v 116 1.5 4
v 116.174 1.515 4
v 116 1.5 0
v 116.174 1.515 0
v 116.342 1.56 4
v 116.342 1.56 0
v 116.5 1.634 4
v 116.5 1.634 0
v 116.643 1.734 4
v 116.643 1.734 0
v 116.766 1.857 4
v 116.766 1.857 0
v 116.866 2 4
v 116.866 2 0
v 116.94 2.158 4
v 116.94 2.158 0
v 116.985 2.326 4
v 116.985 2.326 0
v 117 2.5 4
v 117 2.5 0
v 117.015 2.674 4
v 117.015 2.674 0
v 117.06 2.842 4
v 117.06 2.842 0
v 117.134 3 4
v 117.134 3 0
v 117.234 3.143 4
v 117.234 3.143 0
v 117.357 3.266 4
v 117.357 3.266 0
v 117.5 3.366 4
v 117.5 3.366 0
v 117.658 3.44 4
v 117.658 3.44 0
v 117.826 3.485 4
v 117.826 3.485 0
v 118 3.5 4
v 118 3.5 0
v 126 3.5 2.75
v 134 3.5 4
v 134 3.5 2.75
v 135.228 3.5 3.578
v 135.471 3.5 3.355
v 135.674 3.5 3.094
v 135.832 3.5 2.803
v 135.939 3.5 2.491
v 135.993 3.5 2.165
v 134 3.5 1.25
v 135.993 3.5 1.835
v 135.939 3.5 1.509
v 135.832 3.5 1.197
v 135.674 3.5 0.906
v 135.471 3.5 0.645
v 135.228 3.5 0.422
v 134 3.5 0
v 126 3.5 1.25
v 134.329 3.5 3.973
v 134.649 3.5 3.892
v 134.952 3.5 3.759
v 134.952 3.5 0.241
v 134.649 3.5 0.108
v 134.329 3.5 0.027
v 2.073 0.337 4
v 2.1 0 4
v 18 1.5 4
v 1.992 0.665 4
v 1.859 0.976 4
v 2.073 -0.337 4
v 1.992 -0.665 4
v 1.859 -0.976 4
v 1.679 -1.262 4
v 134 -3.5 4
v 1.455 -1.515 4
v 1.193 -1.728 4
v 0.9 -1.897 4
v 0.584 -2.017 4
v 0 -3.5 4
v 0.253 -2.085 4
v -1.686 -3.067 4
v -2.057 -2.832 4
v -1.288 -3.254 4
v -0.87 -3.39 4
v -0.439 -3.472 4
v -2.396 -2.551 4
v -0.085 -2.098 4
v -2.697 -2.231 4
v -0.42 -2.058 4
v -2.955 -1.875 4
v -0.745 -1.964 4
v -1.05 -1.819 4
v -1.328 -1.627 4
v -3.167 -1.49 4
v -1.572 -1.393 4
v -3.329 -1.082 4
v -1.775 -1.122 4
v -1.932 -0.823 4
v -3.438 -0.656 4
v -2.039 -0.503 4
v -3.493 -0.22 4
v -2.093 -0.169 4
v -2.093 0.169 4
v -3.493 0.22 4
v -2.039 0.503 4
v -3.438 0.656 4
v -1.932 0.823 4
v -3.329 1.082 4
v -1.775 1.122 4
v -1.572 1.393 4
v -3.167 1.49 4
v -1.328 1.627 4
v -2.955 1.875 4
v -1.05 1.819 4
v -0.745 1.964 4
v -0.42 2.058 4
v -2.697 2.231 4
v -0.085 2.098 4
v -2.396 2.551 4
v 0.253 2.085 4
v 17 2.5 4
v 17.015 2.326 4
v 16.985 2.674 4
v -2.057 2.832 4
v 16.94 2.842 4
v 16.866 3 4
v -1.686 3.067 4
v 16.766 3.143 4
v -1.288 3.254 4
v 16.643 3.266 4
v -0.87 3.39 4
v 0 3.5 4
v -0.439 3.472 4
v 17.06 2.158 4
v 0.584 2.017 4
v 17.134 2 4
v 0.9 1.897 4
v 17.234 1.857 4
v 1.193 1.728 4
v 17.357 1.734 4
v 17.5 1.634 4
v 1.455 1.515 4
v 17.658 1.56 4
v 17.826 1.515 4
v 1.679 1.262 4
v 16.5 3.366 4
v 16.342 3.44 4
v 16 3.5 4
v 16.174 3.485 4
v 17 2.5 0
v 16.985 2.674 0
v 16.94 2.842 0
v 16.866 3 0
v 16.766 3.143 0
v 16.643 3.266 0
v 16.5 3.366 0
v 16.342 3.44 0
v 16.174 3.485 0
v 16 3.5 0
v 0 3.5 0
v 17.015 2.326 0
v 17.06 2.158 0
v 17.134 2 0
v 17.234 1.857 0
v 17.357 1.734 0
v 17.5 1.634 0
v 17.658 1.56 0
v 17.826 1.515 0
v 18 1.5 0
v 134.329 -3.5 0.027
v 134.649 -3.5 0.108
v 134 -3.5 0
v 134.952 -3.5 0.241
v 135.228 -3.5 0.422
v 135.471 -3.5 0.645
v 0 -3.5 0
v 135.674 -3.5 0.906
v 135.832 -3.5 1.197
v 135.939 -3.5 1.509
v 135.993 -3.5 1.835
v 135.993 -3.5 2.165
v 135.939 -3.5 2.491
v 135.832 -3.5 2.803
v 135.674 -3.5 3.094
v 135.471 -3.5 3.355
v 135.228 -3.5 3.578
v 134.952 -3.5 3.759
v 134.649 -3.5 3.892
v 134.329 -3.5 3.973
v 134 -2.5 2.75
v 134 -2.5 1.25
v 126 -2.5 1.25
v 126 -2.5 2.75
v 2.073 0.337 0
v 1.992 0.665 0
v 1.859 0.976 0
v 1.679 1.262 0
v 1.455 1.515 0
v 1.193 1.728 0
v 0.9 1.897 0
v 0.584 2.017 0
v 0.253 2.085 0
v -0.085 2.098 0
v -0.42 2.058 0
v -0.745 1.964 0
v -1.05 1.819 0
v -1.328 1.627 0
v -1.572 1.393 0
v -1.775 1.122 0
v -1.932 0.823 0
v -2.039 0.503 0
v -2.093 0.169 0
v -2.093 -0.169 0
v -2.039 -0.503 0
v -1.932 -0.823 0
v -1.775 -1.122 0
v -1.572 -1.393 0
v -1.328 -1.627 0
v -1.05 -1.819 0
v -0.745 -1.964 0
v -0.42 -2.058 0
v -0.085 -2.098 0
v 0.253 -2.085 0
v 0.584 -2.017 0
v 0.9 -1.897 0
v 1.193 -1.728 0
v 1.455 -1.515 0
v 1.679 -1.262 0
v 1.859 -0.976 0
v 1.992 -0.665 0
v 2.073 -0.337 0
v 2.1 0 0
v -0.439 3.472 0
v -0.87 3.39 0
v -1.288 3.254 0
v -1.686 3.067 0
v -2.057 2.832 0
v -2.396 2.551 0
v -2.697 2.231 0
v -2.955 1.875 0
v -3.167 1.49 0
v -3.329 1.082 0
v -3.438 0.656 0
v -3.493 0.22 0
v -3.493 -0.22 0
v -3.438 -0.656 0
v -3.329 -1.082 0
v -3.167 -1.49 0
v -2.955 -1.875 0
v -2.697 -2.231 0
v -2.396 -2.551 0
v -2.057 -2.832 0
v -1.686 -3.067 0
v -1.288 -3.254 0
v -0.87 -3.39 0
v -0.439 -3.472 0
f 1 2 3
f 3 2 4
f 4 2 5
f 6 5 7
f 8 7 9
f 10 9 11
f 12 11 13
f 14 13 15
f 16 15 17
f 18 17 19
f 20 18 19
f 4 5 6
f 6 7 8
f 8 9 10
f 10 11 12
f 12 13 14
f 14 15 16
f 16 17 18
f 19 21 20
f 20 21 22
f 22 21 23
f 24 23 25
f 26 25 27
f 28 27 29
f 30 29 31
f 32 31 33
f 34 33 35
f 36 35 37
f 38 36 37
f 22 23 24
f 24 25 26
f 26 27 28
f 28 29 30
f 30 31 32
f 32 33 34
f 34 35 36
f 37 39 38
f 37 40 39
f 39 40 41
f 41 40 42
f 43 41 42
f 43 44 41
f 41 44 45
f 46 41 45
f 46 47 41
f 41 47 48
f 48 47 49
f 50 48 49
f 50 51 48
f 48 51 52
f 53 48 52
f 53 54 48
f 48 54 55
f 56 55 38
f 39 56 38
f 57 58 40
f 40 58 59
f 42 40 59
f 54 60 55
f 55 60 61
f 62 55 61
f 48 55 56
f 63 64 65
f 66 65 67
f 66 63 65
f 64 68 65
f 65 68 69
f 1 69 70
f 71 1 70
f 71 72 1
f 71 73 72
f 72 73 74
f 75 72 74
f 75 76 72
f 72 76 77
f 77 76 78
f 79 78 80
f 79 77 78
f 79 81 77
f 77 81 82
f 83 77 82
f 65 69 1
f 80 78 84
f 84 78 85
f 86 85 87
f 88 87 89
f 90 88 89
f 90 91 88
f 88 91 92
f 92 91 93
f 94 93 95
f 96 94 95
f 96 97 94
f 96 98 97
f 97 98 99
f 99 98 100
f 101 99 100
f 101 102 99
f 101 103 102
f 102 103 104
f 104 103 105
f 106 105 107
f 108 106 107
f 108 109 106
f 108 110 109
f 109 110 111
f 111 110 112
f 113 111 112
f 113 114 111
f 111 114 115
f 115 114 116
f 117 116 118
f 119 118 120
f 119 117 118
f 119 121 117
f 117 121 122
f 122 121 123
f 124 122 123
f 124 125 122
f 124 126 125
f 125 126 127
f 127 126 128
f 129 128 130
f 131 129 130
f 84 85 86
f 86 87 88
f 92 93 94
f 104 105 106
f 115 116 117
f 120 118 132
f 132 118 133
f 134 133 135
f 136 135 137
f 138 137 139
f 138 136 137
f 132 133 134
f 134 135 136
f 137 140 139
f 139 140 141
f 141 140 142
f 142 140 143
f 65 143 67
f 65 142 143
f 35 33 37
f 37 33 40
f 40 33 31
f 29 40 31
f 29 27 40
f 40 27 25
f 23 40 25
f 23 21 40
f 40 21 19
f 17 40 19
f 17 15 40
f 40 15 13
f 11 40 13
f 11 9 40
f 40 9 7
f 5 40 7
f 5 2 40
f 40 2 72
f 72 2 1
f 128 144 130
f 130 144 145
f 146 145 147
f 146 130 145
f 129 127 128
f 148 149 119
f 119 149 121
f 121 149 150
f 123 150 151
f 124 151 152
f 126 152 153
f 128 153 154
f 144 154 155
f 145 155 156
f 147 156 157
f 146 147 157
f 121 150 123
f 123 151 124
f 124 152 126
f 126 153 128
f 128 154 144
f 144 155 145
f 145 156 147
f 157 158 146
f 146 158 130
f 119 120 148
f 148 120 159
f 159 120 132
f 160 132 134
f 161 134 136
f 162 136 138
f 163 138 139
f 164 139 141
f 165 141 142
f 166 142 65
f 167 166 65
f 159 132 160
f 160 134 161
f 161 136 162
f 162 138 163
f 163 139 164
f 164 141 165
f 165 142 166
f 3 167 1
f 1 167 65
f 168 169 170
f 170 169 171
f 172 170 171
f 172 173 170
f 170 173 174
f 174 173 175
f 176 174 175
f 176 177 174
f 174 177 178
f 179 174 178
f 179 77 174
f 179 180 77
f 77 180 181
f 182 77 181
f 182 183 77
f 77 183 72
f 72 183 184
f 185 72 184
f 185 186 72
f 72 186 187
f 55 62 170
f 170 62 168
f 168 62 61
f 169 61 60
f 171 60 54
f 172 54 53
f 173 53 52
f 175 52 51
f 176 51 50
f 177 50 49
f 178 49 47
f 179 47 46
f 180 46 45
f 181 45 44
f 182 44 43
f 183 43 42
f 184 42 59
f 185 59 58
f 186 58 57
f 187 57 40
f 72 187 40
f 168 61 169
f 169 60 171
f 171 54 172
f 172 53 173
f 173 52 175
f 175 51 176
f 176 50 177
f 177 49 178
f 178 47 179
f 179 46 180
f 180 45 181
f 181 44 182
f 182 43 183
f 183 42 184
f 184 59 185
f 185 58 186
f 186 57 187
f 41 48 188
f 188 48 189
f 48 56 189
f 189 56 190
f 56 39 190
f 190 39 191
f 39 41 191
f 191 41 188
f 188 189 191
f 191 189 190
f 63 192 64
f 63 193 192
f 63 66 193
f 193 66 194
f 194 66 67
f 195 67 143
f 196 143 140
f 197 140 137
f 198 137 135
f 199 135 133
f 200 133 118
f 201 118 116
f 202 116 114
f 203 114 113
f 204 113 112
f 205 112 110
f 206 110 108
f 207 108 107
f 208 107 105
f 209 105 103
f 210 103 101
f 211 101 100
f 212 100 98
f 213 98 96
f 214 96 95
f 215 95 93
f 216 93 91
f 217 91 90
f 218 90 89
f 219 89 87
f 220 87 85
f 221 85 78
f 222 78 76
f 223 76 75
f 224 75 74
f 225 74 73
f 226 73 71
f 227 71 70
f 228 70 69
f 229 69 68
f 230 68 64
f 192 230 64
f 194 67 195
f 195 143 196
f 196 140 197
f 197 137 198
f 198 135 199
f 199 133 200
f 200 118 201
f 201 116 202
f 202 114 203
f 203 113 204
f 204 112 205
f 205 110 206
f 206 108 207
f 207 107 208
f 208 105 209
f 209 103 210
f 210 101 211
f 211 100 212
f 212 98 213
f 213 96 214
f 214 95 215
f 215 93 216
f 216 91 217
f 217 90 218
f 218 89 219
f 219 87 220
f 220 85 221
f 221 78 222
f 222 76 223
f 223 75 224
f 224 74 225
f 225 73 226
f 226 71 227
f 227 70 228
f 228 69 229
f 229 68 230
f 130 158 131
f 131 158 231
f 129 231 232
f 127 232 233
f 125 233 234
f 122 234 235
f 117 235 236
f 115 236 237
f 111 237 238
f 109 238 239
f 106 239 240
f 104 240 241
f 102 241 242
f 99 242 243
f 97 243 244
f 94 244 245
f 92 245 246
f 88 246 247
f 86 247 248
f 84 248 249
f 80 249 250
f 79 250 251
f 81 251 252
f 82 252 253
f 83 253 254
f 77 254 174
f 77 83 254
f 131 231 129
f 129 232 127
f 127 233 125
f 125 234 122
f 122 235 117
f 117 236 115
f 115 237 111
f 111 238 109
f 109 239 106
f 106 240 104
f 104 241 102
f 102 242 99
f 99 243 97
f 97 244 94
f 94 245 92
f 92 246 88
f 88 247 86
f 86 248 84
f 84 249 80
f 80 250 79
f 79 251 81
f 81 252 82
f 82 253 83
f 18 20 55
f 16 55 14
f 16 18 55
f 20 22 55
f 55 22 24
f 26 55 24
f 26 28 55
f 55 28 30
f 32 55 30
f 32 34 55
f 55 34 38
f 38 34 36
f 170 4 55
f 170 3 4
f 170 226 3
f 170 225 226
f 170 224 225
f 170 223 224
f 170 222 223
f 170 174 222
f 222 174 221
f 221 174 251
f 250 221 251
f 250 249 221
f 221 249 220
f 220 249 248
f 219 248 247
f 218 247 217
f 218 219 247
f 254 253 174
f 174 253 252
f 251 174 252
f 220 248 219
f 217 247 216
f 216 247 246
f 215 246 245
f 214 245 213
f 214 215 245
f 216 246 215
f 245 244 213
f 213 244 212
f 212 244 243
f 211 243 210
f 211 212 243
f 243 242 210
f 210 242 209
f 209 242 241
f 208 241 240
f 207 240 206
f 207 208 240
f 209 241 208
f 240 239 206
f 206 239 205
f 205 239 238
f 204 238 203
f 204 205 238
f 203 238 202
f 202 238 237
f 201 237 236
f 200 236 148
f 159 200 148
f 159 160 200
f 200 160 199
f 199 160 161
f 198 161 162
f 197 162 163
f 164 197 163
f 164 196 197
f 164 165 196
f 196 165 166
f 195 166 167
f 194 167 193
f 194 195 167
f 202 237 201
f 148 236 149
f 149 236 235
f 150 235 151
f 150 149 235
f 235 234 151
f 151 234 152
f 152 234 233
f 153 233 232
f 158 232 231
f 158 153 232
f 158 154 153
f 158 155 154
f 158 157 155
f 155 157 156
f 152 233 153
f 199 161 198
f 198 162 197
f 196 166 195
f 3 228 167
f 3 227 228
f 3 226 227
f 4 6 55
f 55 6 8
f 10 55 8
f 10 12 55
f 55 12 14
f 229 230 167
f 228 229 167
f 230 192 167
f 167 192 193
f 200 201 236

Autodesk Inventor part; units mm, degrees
ref_plane "YZ Plane" through (0, 0, 0) normal (1, 0, 0) x (0, 1, 0)
ref_plane "XZ Plane" through (0, 0, 0) normal (0, 1, 0) x (-1, 0, 0)
ref_plane "XY Plane" through (0, 0, 0) normal (0, 0, 1) x (1, 0, 0)
sketch "Sketch1" plane through (0, 0, 0) normal (0, 0, 1) x (1, 0, 0)
  circle A0 centre (0, 0) radius 2.1
  arc A1 (0, 3.5) -> (0, -3.5) centre (0, 0) ccw
  line L0 (0, 3.5) -> (136, 3.5)
  line L1 (136, 3.5) -> (136, -3.5)
  line L2 (136, -3.5) -> (0, -3.5)
  dimension "d0" = 4.2
  dimension "d1" = 7
  dimension "d2" = 136
extrude "Extrusion1" add sketch "Sketch1" along normal blind 4
sketch "Sketch2" plane through (0, 3.5, 0) normal (0, 1, 0) x (1, 0, 0)
  line L0 (136, 0) -> (0, 0) projected
  line L1 (0, 0) -> (0, -4) projected
  line L2 (136, -4) -> (0, -4) projected
  line L3 (136, 0) -> (136, -4) projected
  line L4 (134, -2.75) -> (126, -2.75)
  line L5 (126, -2.75) -> (126, -1.25)
  line L6 (126, -1.25) -> (134, -1.25)
  line L7 (134, -1.25) -> (134, -2.75)
  line L8 (134, -2.75) -> (126, -1.25) construction
  line L9 (126, -2.75) -> (134, -1.25) construction
  point P0 (130, -2)
  dimension "d5" = 8
  dimension "d6" = 1.5
  dimension "d7" = 130
extrude "Extrusion2" cut sketch "Sketch2" against normal blind 6 contours L4 L5 L6 L7
fillet "Fillet1" radius 2 2 edges at (136, 0, 4) (136, 0, 0)
sketch "Sketch3" plane through (0, 0, 4) normal (0, 0, 1) x (1, 0, 0)
  line L0 (134, 3.5) -> (134, -3.5) projected
  line L1 (134, 3.5) -> (0, 3.5) projected
  arc A0 (0, 3.5) -> (0, -3.5) centre (0, 0) ccw projected
  line L2 (0, -3.5) -> (134, -3.5) projected
  circle A1 centre (0, 0) radius 2.1 projected
  line L3 (126, 3.5) -> (126, -2.5) projected
  line L4 (17, 5.5) -> (117, 5.5)
  line L5 (117, 5.5) -> (117, 1.5)
  line L6 (117, 1.5) -> (17, 1.5)
  line L7 (17, 1.5) -> (17, 5.5)
  line L8 (134, 3.5) -> (0, 3.5) projected
  line L9 (17, 5.5) -> (117, 1.5) construction
  line L10 (117, 5.5) -> (17, 1.5) construction
  point P0 (67, 3.5)
  dimension "d11" = 100
  dimension "d12" = 4
extrude "Extrusion3" cut sketch "Sketch3" against normal blind 6 contours L5 L6 L7 L1 | L1 L7 L4 L5
fillet "Fillet2" radius 1 4 edges at (17, 1.5, 2) (17, 3.5, 2) (117, 3.5, 2) (117, 1.5, 2)
properties part number "Potentiometer Pushrod"
